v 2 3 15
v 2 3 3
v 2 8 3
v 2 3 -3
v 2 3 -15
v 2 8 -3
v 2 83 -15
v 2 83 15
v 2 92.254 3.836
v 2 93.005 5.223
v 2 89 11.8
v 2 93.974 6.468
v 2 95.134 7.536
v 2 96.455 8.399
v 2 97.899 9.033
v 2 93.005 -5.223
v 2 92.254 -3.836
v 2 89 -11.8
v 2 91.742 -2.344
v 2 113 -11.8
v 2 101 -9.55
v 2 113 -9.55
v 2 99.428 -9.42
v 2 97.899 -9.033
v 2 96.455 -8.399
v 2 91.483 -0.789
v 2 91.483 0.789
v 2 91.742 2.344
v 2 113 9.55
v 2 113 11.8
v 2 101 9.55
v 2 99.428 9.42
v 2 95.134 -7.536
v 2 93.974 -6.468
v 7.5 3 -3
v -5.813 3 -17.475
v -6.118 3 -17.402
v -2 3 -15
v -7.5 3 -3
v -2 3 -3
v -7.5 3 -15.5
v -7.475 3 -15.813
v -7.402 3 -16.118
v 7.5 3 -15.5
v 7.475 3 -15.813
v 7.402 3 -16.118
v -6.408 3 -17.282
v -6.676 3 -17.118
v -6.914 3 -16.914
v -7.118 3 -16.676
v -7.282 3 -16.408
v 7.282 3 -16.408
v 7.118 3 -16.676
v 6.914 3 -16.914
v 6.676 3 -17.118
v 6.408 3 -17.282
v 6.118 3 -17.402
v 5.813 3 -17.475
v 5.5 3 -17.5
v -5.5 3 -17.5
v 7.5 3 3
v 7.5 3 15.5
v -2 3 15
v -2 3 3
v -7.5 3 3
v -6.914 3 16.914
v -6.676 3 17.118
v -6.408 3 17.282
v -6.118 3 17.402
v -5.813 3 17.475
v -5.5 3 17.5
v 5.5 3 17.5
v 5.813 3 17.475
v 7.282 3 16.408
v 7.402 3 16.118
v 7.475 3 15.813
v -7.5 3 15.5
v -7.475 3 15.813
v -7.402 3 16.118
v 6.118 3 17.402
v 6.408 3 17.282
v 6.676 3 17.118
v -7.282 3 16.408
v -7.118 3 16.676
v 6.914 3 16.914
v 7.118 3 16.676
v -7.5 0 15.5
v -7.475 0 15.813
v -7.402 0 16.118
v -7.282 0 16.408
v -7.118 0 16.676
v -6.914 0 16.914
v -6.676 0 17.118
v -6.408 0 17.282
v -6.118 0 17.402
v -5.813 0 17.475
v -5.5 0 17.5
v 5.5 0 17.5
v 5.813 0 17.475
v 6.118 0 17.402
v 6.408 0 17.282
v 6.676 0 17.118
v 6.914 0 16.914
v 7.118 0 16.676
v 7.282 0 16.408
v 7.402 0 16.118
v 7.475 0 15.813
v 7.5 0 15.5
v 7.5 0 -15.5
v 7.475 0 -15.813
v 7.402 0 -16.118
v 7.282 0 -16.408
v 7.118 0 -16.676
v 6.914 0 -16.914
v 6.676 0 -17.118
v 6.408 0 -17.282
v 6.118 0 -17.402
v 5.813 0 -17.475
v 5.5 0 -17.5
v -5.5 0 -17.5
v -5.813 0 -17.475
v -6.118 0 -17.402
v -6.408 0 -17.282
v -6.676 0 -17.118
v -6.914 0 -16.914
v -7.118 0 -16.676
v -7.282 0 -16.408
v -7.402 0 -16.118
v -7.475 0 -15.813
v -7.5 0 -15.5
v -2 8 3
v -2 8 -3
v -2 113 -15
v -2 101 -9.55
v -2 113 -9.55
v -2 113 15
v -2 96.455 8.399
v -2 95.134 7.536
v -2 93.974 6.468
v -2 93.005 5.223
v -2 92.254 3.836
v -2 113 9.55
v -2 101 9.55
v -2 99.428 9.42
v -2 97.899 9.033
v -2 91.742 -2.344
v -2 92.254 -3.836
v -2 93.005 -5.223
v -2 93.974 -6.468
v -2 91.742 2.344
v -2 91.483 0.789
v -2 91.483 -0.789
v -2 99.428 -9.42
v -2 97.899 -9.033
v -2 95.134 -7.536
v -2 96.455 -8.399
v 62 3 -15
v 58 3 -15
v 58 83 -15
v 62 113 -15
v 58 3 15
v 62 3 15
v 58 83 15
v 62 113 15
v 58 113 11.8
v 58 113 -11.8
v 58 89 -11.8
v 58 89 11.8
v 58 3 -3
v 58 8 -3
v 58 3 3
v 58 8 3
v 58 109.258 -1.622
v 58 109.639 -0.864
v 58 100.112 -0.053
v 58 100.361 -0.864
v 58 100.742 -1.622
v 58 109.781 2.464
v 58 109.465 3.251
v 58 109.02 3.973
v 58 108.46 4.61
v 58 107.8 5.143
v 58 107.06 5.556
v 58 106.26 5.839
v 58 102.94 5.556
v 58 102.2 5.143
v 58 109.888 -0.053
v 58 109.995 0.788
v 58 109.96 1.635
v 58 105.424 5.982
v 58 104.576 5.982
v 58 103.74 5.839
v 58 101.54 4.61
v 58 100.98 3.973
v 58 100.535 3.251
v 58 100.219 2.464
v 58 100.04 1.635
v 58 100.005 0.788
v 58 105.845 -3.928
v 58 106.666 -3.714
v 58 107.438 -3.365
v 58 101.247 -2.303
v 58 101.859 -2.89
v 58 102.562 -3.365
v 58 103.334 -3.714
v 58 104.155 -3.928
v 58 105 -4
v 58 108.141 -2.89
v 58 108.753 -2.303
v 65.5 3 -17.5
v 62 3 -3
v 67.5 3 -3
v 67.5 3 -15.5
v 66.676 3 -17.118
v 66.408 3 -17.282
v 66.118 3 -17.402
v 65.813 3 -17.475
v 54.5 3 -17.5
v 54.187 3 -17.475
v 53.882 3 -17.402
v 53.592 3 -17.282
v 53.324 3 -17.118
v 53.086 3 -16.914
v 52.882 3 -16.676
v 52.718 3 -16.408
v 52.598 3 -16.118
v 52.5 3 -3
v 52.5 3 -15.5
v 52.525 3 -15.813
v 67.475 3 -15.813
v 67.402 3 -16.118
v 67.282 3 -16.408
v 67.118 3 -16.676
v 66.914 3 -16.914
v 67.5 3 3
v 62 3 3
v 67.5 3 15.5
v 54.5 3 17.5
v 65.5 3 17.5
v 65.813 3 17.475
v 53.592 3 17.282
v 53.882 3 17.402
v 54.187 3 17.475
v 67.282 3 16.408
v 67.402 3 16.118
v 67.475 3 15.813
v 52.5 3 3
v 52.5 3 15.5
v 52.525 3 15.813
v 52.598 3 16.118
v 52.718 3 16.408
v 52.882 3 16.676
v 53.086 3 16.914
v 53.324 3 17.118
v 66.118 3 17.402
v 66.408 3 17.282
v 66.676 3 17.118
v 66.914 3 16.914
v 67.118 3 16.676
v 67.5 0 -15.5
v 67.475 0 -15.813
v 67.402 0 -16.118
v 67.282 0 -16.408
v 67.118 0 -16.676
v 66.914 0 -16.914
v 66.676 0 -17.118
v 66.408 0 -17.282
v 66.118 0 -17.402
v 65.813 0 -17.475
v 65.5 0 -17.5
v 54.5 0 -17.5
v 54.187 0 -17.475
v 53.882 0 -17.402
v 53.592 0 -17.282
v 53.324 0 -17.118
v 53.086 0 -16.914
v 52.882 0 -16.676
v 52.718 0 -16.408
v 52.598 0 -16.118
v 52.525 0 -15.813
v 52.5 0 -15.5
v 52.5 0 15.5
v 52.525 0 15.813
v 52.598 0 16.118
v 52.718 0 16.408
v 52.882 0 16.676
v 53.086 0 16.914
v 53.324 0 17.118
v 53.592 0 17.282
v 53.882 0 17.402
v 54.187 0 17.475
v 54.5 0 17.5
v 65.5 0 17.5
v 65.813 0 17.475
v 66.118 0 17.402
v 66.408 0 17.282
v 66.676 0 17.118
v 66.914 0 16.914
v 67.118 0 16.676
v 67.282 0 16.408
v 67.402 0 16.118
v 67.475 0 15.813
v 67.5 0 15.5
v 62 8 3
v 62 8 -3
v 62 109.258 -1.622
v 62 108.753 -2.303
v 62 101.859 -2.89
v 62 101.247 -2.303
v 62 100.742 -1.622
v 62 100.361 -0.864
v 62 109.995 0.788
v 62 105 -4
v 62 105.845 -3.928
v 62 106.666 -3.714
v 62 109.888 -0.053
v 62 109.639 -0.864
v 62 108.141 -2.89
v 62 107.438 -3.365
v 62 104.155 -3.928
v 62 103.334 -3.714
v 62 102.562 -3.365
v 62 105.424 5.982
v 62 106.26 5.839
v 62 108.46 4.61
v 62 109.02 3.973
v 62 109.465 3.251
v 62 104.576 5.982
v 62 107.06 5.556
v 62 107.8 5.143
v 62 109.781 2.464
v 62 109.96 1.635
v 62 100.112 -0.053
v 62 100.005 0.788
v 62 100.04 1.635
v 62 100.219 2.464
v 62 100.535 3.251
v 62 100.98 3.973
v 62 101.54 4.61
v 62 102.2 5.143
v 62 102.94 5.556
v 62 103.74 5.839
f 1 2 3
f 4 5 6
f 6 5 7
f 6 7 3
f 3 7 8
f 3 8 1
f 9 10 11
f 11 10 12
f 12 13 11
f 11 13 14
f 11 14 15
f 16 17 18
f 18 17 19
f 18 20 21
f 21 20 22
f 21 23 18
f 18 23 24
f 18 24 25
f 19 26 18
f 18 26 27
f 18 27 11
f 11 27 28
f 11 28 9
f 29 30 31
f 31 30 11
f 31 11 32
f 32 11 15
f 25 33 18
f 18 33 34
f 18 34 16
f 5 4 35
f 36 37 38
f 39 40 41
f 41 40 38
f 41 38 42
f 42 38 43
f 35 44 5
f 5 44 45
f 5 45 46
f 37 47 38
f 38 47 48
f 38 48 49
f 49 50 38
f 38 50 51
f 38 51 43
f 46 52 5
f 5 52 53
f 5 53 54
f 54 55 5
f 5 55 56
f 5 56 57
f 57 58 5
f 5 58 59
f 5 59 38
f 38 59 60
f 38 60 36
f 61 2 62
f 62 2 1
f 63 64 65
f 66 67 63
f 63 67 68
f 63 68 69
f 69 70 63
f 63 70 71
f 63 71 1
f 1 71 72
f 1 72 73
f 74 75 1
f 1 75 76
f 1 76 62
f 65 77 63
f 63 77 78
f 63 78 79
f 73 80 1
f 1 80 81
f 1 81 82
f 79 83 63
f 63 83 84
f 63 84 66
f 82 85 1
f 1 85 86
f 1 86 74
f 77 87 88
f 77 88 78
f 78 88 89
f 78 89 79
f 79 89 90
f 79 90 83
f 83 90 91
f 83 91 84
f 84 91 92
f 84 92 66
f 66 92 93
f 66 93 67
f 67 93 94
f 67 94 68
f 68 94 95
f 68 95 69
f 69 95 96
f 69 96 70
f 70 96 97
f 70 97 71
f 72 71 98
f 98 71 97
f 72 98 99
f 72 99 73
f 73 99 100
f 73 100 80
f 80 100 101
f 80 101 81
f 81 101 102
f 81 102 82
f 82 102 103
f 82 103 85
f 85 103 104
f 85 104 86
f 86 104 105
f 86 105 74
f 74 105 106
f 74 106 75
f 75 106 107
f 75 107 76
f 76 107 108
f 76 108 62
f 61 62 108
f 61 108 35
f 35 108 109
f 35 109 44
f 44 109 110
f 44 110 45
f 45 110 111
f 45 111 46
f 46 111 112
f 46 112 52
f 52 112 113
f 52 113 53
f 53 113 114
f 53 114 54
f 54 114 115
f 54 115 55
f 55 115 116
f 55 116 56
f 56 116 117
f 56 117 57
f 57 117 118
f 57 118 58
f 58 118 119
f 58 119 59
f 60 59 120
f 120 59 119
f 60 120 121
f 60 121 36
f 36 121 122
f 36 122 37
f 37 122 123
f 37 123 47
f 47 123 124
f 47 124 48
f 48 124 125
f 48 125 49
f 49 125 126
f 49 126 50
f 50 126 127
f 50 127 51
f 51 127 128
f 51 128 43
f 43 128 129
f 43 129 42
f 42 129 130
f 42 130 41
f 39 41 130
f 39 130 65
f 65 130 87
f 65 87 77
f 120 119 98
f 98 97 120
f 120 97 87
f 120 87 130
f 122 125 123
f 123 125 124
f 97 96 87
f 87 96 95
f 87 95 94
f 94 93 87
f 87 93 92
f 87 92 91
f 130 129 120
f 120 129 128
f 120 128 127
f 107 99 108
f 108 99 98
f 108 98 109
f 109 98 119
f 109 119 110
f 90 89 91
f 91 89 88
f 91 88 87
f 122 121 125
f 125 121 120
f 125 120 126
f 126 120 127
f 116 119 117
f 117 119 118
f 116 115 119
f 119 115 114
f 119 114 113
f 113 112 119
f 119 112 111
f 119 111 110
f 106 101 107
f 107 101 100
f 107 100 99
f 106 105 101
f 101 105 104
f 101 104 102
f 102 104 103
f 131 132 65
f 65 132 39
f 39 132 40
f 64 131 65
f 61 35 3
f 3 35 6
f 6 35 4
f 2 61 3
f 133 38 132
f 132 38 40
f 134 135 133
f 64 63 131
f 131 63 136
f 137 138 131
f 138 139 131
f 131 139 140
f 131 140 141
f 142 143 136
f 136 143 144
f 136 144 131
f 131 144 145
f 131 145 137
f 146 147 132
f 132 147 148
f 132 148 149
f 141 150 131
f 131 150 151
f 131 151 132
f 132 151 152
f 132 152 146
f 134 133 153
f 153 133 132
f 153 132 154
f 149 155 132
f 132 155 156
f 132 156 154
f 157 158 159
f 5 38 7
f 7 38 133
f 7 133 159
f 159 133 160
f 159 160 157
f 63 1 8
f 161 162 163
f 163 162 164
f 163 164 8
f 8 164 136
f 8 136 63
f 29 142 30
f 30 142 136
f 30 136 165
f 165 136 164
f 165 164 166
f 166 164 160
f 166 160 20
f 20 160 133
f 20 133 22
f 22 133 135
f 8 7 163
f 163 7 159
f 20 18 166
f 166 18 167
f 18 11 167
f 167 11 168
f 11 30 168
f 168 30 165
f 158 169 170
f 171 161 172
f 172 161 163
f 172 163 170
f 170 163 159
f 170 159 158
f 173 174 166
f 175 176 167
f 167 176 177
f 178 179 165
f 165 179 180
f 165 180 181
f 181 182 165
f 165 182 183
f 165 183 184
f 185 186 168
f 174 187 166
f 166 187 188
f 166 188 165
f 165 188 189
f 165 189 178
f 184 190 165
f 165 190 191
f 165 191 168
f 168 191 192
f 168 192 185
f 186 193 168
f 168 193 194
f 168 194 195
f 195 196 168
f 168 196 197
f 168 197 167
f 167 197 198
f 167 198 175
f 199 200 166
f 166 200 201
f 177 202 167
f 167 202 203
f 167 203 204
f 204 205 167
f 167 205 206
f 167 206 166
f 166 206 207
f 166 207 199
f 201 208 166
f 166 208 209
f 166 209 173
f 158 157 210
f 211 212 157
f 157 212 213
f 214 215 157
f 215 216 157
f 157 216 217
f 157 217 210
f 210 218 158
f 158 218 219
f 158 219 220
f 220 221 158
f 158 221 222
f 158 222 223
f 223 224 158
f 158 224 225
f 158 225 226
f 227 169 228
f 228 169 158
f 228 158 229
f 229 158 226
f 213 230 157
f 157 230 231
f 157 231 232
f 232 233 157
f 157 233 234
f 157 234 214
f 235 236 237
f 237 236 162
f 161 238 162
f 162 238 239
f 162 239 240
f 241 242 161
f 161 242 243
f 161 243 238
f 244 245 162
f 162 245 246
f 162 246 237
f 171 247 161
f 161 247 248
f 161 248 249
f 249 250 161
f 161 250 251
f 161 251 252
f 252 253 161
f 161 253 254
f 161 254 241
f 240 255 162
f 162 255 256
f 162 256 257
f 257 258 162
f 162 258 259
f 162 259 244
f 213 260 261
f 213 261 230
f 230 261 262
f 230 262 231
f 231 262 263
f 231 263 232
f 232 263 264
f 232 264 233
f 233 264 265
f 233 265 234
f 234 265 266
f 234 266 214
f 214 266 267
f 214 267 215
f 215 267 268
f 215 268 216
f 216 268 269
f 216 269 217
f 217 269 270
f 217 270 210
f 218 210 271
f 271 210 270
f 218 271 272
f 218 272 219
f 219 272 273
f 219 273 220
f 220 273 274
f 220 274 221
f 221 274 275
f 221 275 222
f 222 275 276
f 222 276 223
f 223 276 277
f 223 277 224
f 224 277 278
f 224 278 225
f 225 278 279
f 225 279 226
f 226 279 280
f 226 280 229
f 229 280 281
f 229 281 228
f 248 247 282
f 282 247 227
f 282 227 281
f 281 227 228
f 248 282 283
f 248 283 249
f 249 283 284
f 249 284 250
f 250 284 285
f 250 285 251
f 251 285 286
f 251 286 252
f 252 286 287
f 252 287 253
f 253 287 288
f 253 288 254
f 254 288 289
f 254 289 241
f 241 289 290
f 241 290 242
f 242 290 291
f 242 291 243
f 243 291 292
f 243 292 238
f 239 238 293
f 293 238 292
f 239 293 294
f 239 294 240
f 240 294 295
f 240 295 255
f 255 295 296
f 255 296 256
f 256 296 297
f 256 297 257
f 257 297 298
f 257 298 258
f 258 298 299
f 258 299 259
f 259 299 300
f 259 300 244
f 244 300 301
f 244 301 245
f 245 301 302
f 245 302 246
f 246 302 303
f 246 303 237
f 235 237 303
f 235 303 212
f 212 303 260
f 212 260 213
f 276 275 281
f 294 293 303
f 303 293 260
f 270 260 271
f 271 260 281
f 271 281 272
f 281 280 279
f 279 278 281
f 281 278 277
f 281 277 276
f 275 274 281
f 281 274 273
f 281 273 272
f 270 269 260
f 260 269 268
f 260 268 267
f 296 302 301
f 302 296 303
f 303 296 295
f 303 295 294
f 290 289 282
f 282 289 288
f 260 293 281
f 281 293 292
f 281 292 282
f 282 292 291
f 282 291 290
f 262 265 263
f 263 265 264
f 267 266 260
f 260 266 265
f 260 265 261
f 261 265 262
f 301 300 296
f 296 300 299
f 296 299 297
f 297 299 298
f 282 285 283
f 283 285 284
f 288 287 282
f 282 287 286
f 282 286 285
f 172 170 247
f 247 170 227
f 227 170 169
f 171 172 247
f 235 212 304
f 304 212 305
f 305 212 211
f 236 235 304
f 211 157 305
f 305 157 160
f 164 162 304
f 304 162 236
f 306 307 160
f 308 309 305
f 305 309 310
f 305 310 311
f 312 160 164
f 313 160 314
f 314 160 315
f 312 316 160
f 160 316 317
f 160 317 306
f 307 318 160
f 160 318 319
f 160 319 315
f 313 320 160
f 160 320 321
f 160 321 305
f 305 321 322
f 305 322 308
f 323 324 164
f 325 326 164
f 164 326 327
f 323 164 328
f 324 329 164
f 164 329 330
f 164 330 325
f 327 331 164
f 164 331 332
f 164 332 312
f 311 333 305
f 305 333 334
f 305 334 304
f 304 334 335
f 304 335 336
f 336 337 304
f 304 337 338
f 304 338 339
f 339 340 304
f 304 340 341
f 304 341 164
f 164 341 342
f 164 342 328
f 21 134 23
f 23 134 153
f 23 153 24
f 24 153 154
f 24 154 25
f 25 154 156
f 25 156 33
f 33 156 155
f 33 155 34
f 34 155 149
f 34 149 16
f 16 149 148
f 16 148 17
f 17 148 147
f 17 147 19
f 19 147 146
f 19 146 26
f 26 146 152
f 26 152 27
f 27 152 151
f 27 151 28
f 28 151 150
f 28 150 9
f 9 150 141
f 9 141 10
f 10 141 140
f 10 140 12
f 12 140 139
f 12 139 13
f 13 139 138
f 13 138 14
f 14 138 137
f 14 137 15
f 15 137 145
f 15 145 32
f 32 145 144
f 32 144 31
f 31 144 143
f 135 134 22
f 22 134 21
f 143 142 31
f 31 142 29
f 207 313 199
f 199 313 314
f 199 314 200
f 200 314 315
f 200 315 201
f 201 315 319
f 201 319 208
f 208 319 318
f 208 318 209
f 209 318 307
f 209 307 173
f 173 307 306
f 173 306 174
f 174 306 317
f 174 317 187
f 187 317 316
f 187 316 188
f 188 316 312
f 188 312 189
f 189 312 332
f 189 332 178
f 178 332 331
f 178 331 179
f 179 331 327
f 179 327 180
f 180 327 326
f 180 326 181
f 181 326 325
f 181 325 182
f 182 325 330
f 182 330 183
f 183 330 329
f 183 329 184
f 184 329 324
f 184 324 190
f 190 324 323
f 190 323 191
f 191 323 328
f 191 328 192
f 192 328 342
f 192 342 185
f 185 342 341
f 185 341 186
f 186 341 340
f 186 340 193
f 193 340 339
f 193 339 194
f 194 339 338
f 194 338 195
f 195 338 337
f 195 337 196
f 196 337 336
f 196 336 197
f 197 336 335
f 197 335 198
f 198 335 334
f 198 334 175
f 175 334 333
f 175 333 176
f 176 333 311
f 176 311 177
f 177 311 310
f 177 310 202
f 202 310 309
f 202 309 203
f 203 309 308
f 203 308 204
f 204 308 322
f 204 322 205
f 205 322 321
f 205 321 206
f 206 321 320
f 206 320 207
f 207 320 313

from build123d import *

# Parameters (mm, degrees)
SALIENTE_EXTRUIR1_DEPTH      = 3
SALIENTE_EXTRUIR1_2_DEPTH    = 3
SALIENTE_EXTRUIR2_DEPTH      = 3
SALIENTE_EXTRUIR2_DEPTH_BACK = 3
CROQUIS4_W                   = 4
CROQUIS4_H                   = 30
SALIENTE_EXTRUIR3_DEPTH      = 110
SALIENTE_EXTRUIR4_DEPTH      = 56
CORTAR_EXTRUIR1_DEPTH        = 4
CROQUIS7_R                   = 5
CORTAR_EXTRUIR2_DEPTH        = 4


with BuildPart() as part:
    # Croquis2 → Saliente-Extruir1 (new body)
    with BuildSketch(Plane(origin=(0, 0, 0), x_dir=(1, 0, 0), z_dir=(0, 1, 0))):
        with BuildLine():
            Line((-5.5, -17.5), (5.5, -17.5))
            ThreePointArc((5.5, -17.5), (6.914213562, -16.914213562), (7.5, -15.5))
            Line((7.5, -15.5), (7.5, 15.5))
            ThreePointArc((7.5, 15.5), (6.914213562, 16.914213562), (5.5, 17.5))
            Line((5.5, 17.5), (-5.5, 17.5))
            ThreePointArc((-5.5, 17.5), (-6.914213562, 16.914213562), (-7.5, 15.5))
            Line((-7.5, 15.5), (-7.5, -15.5))
            ThreePointArc((-7.5, -15.5), (-6.914213562, -16.914213562), (-5.5, -17.5))
        make_face()
    extrude(amount=SALIENTE_EXTRUIR1_DEPTH)



with BuildPart() as body_2:
    # Croquis2 → Saliente-Extruir1 2 (new body)
    with BuildSketch(Plane(origin=(0, 0, 0), x_dir=(1, 0, 0), z_dir=(0, 1, 0))):
        with BuildLine():
            Line((52.5, -15.5), (52.5, 15.5))
            ThreePointArc((52.5, 15.5), (53.085786438, 16.914213562), (54.5, 17.5))
            Line((54.5, 17.5), (65.5, 17.5))
            ThreePointArc((65.5, 17.5), (66.914213562, 16.914213562), (67.5, 15.5))
            Line((67.5, 15.5), (67.5, -15.5))
            ThreePointArc((67.5, -15.5), (66.914213562, -16.914213562), (65.5, -17.5))
            Line((65.5, -17.5), (54.5, -17.5))
            ThreePointArc((54.5, -17.5), (53.085786438, -16.914213562), (52.5, -15.5))
        make_face()
    extrude(amount=SALIENTE_EXTRUIR1_2_DEPTH)


with BuildPart() as part_1:
    add(part.part)

    add(body_2.part)  # Saliente-Extruir2 merges body 2
    # Croquis3 → Saliente-Extruir2 (add, two sides: drawn at the far end of the back side and taken through both)
    with BuildSketch(Plane.XY.offset(-SALIENTE_EXTRUIR2_DEPTH_BACK)):
        Polygon((-7.5, 3), (-2, 8), (-2, 3), align=None)
        Polygon((2, 3), (7.5, 3), (2, 8), align=None)
        Polygon((52.5, 3), (58, 8), (58, 3), align=None)
        Polygon((62, 3), (67.5, 3), (62, 8), align=None)
    extrude(amount=SALIENTE_EXTRUIR2_DEPTH + SALIENTE_EXTRUIR2_DEPTH_BACK)

    # Croquis4 → Saliente-Extruir3 (add)
    with BuildSketch(Plane(origin=(0, 3, 0), x_dir=(1, 0, 0), z_dir=(0, 1, 0))):
        Rectangle(CROQUIS4_W, CROQUIS4_H)
        with Locations((60, 0)):
            Rectangle(CROQUIS4_W, CROQUIS4_H)
    extrude(amount=SALIENTE_EXTRUIR3_DEPTH)

    # Croquis5 → Saliente-Extruir4 (add)
    with BuildSketch(Plane(origin=(2, 0, 0), x_dir=(0, 0, -1), z_dir=(1, 0, 0))):
        Polygon((-15, 113), (-11.8, 113), (-11.8, 89), (11.8, 89), (11.8, 113), (15, 113), (15, 83), (11.5, 83), (-11.5, 83), (-15, 83), align=None)
    extrude(amount=SALIENTE_EXTRUIR4_DEPTH)

    # Croquis6 → Cortar-Extruir1 (cut)
    with BuildSketch(Plane.ZY.offset(2)):
        with BuildLine():
            Line((-9.55, 101), (-9.55, 113))
            Line((-9.55, 113), (9.55, 113))
            Line((9.55, 113), (9.55, 101))
            ThreePointArc((9.55, 101), (0, 91.45), (-9.55, 101))
        make_face()
    extrude(amount=-CORTAR_EXTRUIR1_DEPTH, mode=Mode.SUBTRACT)

    # Croquis7 → Cortar-Extruir2 (cut)
    with BuildSketch(Plane(origin=(62, 0, 0), x_dir=(0, 0, -1), z_dir=(1, 0, 0))):
        with Locations((-1, 105)):
            Circle(CROQUIS7_R)
    extrude(amount=-CORTAR_EXTRUIR2_DEPTH, mode=Mode.SUBTRACT)


solid = part_1.part
